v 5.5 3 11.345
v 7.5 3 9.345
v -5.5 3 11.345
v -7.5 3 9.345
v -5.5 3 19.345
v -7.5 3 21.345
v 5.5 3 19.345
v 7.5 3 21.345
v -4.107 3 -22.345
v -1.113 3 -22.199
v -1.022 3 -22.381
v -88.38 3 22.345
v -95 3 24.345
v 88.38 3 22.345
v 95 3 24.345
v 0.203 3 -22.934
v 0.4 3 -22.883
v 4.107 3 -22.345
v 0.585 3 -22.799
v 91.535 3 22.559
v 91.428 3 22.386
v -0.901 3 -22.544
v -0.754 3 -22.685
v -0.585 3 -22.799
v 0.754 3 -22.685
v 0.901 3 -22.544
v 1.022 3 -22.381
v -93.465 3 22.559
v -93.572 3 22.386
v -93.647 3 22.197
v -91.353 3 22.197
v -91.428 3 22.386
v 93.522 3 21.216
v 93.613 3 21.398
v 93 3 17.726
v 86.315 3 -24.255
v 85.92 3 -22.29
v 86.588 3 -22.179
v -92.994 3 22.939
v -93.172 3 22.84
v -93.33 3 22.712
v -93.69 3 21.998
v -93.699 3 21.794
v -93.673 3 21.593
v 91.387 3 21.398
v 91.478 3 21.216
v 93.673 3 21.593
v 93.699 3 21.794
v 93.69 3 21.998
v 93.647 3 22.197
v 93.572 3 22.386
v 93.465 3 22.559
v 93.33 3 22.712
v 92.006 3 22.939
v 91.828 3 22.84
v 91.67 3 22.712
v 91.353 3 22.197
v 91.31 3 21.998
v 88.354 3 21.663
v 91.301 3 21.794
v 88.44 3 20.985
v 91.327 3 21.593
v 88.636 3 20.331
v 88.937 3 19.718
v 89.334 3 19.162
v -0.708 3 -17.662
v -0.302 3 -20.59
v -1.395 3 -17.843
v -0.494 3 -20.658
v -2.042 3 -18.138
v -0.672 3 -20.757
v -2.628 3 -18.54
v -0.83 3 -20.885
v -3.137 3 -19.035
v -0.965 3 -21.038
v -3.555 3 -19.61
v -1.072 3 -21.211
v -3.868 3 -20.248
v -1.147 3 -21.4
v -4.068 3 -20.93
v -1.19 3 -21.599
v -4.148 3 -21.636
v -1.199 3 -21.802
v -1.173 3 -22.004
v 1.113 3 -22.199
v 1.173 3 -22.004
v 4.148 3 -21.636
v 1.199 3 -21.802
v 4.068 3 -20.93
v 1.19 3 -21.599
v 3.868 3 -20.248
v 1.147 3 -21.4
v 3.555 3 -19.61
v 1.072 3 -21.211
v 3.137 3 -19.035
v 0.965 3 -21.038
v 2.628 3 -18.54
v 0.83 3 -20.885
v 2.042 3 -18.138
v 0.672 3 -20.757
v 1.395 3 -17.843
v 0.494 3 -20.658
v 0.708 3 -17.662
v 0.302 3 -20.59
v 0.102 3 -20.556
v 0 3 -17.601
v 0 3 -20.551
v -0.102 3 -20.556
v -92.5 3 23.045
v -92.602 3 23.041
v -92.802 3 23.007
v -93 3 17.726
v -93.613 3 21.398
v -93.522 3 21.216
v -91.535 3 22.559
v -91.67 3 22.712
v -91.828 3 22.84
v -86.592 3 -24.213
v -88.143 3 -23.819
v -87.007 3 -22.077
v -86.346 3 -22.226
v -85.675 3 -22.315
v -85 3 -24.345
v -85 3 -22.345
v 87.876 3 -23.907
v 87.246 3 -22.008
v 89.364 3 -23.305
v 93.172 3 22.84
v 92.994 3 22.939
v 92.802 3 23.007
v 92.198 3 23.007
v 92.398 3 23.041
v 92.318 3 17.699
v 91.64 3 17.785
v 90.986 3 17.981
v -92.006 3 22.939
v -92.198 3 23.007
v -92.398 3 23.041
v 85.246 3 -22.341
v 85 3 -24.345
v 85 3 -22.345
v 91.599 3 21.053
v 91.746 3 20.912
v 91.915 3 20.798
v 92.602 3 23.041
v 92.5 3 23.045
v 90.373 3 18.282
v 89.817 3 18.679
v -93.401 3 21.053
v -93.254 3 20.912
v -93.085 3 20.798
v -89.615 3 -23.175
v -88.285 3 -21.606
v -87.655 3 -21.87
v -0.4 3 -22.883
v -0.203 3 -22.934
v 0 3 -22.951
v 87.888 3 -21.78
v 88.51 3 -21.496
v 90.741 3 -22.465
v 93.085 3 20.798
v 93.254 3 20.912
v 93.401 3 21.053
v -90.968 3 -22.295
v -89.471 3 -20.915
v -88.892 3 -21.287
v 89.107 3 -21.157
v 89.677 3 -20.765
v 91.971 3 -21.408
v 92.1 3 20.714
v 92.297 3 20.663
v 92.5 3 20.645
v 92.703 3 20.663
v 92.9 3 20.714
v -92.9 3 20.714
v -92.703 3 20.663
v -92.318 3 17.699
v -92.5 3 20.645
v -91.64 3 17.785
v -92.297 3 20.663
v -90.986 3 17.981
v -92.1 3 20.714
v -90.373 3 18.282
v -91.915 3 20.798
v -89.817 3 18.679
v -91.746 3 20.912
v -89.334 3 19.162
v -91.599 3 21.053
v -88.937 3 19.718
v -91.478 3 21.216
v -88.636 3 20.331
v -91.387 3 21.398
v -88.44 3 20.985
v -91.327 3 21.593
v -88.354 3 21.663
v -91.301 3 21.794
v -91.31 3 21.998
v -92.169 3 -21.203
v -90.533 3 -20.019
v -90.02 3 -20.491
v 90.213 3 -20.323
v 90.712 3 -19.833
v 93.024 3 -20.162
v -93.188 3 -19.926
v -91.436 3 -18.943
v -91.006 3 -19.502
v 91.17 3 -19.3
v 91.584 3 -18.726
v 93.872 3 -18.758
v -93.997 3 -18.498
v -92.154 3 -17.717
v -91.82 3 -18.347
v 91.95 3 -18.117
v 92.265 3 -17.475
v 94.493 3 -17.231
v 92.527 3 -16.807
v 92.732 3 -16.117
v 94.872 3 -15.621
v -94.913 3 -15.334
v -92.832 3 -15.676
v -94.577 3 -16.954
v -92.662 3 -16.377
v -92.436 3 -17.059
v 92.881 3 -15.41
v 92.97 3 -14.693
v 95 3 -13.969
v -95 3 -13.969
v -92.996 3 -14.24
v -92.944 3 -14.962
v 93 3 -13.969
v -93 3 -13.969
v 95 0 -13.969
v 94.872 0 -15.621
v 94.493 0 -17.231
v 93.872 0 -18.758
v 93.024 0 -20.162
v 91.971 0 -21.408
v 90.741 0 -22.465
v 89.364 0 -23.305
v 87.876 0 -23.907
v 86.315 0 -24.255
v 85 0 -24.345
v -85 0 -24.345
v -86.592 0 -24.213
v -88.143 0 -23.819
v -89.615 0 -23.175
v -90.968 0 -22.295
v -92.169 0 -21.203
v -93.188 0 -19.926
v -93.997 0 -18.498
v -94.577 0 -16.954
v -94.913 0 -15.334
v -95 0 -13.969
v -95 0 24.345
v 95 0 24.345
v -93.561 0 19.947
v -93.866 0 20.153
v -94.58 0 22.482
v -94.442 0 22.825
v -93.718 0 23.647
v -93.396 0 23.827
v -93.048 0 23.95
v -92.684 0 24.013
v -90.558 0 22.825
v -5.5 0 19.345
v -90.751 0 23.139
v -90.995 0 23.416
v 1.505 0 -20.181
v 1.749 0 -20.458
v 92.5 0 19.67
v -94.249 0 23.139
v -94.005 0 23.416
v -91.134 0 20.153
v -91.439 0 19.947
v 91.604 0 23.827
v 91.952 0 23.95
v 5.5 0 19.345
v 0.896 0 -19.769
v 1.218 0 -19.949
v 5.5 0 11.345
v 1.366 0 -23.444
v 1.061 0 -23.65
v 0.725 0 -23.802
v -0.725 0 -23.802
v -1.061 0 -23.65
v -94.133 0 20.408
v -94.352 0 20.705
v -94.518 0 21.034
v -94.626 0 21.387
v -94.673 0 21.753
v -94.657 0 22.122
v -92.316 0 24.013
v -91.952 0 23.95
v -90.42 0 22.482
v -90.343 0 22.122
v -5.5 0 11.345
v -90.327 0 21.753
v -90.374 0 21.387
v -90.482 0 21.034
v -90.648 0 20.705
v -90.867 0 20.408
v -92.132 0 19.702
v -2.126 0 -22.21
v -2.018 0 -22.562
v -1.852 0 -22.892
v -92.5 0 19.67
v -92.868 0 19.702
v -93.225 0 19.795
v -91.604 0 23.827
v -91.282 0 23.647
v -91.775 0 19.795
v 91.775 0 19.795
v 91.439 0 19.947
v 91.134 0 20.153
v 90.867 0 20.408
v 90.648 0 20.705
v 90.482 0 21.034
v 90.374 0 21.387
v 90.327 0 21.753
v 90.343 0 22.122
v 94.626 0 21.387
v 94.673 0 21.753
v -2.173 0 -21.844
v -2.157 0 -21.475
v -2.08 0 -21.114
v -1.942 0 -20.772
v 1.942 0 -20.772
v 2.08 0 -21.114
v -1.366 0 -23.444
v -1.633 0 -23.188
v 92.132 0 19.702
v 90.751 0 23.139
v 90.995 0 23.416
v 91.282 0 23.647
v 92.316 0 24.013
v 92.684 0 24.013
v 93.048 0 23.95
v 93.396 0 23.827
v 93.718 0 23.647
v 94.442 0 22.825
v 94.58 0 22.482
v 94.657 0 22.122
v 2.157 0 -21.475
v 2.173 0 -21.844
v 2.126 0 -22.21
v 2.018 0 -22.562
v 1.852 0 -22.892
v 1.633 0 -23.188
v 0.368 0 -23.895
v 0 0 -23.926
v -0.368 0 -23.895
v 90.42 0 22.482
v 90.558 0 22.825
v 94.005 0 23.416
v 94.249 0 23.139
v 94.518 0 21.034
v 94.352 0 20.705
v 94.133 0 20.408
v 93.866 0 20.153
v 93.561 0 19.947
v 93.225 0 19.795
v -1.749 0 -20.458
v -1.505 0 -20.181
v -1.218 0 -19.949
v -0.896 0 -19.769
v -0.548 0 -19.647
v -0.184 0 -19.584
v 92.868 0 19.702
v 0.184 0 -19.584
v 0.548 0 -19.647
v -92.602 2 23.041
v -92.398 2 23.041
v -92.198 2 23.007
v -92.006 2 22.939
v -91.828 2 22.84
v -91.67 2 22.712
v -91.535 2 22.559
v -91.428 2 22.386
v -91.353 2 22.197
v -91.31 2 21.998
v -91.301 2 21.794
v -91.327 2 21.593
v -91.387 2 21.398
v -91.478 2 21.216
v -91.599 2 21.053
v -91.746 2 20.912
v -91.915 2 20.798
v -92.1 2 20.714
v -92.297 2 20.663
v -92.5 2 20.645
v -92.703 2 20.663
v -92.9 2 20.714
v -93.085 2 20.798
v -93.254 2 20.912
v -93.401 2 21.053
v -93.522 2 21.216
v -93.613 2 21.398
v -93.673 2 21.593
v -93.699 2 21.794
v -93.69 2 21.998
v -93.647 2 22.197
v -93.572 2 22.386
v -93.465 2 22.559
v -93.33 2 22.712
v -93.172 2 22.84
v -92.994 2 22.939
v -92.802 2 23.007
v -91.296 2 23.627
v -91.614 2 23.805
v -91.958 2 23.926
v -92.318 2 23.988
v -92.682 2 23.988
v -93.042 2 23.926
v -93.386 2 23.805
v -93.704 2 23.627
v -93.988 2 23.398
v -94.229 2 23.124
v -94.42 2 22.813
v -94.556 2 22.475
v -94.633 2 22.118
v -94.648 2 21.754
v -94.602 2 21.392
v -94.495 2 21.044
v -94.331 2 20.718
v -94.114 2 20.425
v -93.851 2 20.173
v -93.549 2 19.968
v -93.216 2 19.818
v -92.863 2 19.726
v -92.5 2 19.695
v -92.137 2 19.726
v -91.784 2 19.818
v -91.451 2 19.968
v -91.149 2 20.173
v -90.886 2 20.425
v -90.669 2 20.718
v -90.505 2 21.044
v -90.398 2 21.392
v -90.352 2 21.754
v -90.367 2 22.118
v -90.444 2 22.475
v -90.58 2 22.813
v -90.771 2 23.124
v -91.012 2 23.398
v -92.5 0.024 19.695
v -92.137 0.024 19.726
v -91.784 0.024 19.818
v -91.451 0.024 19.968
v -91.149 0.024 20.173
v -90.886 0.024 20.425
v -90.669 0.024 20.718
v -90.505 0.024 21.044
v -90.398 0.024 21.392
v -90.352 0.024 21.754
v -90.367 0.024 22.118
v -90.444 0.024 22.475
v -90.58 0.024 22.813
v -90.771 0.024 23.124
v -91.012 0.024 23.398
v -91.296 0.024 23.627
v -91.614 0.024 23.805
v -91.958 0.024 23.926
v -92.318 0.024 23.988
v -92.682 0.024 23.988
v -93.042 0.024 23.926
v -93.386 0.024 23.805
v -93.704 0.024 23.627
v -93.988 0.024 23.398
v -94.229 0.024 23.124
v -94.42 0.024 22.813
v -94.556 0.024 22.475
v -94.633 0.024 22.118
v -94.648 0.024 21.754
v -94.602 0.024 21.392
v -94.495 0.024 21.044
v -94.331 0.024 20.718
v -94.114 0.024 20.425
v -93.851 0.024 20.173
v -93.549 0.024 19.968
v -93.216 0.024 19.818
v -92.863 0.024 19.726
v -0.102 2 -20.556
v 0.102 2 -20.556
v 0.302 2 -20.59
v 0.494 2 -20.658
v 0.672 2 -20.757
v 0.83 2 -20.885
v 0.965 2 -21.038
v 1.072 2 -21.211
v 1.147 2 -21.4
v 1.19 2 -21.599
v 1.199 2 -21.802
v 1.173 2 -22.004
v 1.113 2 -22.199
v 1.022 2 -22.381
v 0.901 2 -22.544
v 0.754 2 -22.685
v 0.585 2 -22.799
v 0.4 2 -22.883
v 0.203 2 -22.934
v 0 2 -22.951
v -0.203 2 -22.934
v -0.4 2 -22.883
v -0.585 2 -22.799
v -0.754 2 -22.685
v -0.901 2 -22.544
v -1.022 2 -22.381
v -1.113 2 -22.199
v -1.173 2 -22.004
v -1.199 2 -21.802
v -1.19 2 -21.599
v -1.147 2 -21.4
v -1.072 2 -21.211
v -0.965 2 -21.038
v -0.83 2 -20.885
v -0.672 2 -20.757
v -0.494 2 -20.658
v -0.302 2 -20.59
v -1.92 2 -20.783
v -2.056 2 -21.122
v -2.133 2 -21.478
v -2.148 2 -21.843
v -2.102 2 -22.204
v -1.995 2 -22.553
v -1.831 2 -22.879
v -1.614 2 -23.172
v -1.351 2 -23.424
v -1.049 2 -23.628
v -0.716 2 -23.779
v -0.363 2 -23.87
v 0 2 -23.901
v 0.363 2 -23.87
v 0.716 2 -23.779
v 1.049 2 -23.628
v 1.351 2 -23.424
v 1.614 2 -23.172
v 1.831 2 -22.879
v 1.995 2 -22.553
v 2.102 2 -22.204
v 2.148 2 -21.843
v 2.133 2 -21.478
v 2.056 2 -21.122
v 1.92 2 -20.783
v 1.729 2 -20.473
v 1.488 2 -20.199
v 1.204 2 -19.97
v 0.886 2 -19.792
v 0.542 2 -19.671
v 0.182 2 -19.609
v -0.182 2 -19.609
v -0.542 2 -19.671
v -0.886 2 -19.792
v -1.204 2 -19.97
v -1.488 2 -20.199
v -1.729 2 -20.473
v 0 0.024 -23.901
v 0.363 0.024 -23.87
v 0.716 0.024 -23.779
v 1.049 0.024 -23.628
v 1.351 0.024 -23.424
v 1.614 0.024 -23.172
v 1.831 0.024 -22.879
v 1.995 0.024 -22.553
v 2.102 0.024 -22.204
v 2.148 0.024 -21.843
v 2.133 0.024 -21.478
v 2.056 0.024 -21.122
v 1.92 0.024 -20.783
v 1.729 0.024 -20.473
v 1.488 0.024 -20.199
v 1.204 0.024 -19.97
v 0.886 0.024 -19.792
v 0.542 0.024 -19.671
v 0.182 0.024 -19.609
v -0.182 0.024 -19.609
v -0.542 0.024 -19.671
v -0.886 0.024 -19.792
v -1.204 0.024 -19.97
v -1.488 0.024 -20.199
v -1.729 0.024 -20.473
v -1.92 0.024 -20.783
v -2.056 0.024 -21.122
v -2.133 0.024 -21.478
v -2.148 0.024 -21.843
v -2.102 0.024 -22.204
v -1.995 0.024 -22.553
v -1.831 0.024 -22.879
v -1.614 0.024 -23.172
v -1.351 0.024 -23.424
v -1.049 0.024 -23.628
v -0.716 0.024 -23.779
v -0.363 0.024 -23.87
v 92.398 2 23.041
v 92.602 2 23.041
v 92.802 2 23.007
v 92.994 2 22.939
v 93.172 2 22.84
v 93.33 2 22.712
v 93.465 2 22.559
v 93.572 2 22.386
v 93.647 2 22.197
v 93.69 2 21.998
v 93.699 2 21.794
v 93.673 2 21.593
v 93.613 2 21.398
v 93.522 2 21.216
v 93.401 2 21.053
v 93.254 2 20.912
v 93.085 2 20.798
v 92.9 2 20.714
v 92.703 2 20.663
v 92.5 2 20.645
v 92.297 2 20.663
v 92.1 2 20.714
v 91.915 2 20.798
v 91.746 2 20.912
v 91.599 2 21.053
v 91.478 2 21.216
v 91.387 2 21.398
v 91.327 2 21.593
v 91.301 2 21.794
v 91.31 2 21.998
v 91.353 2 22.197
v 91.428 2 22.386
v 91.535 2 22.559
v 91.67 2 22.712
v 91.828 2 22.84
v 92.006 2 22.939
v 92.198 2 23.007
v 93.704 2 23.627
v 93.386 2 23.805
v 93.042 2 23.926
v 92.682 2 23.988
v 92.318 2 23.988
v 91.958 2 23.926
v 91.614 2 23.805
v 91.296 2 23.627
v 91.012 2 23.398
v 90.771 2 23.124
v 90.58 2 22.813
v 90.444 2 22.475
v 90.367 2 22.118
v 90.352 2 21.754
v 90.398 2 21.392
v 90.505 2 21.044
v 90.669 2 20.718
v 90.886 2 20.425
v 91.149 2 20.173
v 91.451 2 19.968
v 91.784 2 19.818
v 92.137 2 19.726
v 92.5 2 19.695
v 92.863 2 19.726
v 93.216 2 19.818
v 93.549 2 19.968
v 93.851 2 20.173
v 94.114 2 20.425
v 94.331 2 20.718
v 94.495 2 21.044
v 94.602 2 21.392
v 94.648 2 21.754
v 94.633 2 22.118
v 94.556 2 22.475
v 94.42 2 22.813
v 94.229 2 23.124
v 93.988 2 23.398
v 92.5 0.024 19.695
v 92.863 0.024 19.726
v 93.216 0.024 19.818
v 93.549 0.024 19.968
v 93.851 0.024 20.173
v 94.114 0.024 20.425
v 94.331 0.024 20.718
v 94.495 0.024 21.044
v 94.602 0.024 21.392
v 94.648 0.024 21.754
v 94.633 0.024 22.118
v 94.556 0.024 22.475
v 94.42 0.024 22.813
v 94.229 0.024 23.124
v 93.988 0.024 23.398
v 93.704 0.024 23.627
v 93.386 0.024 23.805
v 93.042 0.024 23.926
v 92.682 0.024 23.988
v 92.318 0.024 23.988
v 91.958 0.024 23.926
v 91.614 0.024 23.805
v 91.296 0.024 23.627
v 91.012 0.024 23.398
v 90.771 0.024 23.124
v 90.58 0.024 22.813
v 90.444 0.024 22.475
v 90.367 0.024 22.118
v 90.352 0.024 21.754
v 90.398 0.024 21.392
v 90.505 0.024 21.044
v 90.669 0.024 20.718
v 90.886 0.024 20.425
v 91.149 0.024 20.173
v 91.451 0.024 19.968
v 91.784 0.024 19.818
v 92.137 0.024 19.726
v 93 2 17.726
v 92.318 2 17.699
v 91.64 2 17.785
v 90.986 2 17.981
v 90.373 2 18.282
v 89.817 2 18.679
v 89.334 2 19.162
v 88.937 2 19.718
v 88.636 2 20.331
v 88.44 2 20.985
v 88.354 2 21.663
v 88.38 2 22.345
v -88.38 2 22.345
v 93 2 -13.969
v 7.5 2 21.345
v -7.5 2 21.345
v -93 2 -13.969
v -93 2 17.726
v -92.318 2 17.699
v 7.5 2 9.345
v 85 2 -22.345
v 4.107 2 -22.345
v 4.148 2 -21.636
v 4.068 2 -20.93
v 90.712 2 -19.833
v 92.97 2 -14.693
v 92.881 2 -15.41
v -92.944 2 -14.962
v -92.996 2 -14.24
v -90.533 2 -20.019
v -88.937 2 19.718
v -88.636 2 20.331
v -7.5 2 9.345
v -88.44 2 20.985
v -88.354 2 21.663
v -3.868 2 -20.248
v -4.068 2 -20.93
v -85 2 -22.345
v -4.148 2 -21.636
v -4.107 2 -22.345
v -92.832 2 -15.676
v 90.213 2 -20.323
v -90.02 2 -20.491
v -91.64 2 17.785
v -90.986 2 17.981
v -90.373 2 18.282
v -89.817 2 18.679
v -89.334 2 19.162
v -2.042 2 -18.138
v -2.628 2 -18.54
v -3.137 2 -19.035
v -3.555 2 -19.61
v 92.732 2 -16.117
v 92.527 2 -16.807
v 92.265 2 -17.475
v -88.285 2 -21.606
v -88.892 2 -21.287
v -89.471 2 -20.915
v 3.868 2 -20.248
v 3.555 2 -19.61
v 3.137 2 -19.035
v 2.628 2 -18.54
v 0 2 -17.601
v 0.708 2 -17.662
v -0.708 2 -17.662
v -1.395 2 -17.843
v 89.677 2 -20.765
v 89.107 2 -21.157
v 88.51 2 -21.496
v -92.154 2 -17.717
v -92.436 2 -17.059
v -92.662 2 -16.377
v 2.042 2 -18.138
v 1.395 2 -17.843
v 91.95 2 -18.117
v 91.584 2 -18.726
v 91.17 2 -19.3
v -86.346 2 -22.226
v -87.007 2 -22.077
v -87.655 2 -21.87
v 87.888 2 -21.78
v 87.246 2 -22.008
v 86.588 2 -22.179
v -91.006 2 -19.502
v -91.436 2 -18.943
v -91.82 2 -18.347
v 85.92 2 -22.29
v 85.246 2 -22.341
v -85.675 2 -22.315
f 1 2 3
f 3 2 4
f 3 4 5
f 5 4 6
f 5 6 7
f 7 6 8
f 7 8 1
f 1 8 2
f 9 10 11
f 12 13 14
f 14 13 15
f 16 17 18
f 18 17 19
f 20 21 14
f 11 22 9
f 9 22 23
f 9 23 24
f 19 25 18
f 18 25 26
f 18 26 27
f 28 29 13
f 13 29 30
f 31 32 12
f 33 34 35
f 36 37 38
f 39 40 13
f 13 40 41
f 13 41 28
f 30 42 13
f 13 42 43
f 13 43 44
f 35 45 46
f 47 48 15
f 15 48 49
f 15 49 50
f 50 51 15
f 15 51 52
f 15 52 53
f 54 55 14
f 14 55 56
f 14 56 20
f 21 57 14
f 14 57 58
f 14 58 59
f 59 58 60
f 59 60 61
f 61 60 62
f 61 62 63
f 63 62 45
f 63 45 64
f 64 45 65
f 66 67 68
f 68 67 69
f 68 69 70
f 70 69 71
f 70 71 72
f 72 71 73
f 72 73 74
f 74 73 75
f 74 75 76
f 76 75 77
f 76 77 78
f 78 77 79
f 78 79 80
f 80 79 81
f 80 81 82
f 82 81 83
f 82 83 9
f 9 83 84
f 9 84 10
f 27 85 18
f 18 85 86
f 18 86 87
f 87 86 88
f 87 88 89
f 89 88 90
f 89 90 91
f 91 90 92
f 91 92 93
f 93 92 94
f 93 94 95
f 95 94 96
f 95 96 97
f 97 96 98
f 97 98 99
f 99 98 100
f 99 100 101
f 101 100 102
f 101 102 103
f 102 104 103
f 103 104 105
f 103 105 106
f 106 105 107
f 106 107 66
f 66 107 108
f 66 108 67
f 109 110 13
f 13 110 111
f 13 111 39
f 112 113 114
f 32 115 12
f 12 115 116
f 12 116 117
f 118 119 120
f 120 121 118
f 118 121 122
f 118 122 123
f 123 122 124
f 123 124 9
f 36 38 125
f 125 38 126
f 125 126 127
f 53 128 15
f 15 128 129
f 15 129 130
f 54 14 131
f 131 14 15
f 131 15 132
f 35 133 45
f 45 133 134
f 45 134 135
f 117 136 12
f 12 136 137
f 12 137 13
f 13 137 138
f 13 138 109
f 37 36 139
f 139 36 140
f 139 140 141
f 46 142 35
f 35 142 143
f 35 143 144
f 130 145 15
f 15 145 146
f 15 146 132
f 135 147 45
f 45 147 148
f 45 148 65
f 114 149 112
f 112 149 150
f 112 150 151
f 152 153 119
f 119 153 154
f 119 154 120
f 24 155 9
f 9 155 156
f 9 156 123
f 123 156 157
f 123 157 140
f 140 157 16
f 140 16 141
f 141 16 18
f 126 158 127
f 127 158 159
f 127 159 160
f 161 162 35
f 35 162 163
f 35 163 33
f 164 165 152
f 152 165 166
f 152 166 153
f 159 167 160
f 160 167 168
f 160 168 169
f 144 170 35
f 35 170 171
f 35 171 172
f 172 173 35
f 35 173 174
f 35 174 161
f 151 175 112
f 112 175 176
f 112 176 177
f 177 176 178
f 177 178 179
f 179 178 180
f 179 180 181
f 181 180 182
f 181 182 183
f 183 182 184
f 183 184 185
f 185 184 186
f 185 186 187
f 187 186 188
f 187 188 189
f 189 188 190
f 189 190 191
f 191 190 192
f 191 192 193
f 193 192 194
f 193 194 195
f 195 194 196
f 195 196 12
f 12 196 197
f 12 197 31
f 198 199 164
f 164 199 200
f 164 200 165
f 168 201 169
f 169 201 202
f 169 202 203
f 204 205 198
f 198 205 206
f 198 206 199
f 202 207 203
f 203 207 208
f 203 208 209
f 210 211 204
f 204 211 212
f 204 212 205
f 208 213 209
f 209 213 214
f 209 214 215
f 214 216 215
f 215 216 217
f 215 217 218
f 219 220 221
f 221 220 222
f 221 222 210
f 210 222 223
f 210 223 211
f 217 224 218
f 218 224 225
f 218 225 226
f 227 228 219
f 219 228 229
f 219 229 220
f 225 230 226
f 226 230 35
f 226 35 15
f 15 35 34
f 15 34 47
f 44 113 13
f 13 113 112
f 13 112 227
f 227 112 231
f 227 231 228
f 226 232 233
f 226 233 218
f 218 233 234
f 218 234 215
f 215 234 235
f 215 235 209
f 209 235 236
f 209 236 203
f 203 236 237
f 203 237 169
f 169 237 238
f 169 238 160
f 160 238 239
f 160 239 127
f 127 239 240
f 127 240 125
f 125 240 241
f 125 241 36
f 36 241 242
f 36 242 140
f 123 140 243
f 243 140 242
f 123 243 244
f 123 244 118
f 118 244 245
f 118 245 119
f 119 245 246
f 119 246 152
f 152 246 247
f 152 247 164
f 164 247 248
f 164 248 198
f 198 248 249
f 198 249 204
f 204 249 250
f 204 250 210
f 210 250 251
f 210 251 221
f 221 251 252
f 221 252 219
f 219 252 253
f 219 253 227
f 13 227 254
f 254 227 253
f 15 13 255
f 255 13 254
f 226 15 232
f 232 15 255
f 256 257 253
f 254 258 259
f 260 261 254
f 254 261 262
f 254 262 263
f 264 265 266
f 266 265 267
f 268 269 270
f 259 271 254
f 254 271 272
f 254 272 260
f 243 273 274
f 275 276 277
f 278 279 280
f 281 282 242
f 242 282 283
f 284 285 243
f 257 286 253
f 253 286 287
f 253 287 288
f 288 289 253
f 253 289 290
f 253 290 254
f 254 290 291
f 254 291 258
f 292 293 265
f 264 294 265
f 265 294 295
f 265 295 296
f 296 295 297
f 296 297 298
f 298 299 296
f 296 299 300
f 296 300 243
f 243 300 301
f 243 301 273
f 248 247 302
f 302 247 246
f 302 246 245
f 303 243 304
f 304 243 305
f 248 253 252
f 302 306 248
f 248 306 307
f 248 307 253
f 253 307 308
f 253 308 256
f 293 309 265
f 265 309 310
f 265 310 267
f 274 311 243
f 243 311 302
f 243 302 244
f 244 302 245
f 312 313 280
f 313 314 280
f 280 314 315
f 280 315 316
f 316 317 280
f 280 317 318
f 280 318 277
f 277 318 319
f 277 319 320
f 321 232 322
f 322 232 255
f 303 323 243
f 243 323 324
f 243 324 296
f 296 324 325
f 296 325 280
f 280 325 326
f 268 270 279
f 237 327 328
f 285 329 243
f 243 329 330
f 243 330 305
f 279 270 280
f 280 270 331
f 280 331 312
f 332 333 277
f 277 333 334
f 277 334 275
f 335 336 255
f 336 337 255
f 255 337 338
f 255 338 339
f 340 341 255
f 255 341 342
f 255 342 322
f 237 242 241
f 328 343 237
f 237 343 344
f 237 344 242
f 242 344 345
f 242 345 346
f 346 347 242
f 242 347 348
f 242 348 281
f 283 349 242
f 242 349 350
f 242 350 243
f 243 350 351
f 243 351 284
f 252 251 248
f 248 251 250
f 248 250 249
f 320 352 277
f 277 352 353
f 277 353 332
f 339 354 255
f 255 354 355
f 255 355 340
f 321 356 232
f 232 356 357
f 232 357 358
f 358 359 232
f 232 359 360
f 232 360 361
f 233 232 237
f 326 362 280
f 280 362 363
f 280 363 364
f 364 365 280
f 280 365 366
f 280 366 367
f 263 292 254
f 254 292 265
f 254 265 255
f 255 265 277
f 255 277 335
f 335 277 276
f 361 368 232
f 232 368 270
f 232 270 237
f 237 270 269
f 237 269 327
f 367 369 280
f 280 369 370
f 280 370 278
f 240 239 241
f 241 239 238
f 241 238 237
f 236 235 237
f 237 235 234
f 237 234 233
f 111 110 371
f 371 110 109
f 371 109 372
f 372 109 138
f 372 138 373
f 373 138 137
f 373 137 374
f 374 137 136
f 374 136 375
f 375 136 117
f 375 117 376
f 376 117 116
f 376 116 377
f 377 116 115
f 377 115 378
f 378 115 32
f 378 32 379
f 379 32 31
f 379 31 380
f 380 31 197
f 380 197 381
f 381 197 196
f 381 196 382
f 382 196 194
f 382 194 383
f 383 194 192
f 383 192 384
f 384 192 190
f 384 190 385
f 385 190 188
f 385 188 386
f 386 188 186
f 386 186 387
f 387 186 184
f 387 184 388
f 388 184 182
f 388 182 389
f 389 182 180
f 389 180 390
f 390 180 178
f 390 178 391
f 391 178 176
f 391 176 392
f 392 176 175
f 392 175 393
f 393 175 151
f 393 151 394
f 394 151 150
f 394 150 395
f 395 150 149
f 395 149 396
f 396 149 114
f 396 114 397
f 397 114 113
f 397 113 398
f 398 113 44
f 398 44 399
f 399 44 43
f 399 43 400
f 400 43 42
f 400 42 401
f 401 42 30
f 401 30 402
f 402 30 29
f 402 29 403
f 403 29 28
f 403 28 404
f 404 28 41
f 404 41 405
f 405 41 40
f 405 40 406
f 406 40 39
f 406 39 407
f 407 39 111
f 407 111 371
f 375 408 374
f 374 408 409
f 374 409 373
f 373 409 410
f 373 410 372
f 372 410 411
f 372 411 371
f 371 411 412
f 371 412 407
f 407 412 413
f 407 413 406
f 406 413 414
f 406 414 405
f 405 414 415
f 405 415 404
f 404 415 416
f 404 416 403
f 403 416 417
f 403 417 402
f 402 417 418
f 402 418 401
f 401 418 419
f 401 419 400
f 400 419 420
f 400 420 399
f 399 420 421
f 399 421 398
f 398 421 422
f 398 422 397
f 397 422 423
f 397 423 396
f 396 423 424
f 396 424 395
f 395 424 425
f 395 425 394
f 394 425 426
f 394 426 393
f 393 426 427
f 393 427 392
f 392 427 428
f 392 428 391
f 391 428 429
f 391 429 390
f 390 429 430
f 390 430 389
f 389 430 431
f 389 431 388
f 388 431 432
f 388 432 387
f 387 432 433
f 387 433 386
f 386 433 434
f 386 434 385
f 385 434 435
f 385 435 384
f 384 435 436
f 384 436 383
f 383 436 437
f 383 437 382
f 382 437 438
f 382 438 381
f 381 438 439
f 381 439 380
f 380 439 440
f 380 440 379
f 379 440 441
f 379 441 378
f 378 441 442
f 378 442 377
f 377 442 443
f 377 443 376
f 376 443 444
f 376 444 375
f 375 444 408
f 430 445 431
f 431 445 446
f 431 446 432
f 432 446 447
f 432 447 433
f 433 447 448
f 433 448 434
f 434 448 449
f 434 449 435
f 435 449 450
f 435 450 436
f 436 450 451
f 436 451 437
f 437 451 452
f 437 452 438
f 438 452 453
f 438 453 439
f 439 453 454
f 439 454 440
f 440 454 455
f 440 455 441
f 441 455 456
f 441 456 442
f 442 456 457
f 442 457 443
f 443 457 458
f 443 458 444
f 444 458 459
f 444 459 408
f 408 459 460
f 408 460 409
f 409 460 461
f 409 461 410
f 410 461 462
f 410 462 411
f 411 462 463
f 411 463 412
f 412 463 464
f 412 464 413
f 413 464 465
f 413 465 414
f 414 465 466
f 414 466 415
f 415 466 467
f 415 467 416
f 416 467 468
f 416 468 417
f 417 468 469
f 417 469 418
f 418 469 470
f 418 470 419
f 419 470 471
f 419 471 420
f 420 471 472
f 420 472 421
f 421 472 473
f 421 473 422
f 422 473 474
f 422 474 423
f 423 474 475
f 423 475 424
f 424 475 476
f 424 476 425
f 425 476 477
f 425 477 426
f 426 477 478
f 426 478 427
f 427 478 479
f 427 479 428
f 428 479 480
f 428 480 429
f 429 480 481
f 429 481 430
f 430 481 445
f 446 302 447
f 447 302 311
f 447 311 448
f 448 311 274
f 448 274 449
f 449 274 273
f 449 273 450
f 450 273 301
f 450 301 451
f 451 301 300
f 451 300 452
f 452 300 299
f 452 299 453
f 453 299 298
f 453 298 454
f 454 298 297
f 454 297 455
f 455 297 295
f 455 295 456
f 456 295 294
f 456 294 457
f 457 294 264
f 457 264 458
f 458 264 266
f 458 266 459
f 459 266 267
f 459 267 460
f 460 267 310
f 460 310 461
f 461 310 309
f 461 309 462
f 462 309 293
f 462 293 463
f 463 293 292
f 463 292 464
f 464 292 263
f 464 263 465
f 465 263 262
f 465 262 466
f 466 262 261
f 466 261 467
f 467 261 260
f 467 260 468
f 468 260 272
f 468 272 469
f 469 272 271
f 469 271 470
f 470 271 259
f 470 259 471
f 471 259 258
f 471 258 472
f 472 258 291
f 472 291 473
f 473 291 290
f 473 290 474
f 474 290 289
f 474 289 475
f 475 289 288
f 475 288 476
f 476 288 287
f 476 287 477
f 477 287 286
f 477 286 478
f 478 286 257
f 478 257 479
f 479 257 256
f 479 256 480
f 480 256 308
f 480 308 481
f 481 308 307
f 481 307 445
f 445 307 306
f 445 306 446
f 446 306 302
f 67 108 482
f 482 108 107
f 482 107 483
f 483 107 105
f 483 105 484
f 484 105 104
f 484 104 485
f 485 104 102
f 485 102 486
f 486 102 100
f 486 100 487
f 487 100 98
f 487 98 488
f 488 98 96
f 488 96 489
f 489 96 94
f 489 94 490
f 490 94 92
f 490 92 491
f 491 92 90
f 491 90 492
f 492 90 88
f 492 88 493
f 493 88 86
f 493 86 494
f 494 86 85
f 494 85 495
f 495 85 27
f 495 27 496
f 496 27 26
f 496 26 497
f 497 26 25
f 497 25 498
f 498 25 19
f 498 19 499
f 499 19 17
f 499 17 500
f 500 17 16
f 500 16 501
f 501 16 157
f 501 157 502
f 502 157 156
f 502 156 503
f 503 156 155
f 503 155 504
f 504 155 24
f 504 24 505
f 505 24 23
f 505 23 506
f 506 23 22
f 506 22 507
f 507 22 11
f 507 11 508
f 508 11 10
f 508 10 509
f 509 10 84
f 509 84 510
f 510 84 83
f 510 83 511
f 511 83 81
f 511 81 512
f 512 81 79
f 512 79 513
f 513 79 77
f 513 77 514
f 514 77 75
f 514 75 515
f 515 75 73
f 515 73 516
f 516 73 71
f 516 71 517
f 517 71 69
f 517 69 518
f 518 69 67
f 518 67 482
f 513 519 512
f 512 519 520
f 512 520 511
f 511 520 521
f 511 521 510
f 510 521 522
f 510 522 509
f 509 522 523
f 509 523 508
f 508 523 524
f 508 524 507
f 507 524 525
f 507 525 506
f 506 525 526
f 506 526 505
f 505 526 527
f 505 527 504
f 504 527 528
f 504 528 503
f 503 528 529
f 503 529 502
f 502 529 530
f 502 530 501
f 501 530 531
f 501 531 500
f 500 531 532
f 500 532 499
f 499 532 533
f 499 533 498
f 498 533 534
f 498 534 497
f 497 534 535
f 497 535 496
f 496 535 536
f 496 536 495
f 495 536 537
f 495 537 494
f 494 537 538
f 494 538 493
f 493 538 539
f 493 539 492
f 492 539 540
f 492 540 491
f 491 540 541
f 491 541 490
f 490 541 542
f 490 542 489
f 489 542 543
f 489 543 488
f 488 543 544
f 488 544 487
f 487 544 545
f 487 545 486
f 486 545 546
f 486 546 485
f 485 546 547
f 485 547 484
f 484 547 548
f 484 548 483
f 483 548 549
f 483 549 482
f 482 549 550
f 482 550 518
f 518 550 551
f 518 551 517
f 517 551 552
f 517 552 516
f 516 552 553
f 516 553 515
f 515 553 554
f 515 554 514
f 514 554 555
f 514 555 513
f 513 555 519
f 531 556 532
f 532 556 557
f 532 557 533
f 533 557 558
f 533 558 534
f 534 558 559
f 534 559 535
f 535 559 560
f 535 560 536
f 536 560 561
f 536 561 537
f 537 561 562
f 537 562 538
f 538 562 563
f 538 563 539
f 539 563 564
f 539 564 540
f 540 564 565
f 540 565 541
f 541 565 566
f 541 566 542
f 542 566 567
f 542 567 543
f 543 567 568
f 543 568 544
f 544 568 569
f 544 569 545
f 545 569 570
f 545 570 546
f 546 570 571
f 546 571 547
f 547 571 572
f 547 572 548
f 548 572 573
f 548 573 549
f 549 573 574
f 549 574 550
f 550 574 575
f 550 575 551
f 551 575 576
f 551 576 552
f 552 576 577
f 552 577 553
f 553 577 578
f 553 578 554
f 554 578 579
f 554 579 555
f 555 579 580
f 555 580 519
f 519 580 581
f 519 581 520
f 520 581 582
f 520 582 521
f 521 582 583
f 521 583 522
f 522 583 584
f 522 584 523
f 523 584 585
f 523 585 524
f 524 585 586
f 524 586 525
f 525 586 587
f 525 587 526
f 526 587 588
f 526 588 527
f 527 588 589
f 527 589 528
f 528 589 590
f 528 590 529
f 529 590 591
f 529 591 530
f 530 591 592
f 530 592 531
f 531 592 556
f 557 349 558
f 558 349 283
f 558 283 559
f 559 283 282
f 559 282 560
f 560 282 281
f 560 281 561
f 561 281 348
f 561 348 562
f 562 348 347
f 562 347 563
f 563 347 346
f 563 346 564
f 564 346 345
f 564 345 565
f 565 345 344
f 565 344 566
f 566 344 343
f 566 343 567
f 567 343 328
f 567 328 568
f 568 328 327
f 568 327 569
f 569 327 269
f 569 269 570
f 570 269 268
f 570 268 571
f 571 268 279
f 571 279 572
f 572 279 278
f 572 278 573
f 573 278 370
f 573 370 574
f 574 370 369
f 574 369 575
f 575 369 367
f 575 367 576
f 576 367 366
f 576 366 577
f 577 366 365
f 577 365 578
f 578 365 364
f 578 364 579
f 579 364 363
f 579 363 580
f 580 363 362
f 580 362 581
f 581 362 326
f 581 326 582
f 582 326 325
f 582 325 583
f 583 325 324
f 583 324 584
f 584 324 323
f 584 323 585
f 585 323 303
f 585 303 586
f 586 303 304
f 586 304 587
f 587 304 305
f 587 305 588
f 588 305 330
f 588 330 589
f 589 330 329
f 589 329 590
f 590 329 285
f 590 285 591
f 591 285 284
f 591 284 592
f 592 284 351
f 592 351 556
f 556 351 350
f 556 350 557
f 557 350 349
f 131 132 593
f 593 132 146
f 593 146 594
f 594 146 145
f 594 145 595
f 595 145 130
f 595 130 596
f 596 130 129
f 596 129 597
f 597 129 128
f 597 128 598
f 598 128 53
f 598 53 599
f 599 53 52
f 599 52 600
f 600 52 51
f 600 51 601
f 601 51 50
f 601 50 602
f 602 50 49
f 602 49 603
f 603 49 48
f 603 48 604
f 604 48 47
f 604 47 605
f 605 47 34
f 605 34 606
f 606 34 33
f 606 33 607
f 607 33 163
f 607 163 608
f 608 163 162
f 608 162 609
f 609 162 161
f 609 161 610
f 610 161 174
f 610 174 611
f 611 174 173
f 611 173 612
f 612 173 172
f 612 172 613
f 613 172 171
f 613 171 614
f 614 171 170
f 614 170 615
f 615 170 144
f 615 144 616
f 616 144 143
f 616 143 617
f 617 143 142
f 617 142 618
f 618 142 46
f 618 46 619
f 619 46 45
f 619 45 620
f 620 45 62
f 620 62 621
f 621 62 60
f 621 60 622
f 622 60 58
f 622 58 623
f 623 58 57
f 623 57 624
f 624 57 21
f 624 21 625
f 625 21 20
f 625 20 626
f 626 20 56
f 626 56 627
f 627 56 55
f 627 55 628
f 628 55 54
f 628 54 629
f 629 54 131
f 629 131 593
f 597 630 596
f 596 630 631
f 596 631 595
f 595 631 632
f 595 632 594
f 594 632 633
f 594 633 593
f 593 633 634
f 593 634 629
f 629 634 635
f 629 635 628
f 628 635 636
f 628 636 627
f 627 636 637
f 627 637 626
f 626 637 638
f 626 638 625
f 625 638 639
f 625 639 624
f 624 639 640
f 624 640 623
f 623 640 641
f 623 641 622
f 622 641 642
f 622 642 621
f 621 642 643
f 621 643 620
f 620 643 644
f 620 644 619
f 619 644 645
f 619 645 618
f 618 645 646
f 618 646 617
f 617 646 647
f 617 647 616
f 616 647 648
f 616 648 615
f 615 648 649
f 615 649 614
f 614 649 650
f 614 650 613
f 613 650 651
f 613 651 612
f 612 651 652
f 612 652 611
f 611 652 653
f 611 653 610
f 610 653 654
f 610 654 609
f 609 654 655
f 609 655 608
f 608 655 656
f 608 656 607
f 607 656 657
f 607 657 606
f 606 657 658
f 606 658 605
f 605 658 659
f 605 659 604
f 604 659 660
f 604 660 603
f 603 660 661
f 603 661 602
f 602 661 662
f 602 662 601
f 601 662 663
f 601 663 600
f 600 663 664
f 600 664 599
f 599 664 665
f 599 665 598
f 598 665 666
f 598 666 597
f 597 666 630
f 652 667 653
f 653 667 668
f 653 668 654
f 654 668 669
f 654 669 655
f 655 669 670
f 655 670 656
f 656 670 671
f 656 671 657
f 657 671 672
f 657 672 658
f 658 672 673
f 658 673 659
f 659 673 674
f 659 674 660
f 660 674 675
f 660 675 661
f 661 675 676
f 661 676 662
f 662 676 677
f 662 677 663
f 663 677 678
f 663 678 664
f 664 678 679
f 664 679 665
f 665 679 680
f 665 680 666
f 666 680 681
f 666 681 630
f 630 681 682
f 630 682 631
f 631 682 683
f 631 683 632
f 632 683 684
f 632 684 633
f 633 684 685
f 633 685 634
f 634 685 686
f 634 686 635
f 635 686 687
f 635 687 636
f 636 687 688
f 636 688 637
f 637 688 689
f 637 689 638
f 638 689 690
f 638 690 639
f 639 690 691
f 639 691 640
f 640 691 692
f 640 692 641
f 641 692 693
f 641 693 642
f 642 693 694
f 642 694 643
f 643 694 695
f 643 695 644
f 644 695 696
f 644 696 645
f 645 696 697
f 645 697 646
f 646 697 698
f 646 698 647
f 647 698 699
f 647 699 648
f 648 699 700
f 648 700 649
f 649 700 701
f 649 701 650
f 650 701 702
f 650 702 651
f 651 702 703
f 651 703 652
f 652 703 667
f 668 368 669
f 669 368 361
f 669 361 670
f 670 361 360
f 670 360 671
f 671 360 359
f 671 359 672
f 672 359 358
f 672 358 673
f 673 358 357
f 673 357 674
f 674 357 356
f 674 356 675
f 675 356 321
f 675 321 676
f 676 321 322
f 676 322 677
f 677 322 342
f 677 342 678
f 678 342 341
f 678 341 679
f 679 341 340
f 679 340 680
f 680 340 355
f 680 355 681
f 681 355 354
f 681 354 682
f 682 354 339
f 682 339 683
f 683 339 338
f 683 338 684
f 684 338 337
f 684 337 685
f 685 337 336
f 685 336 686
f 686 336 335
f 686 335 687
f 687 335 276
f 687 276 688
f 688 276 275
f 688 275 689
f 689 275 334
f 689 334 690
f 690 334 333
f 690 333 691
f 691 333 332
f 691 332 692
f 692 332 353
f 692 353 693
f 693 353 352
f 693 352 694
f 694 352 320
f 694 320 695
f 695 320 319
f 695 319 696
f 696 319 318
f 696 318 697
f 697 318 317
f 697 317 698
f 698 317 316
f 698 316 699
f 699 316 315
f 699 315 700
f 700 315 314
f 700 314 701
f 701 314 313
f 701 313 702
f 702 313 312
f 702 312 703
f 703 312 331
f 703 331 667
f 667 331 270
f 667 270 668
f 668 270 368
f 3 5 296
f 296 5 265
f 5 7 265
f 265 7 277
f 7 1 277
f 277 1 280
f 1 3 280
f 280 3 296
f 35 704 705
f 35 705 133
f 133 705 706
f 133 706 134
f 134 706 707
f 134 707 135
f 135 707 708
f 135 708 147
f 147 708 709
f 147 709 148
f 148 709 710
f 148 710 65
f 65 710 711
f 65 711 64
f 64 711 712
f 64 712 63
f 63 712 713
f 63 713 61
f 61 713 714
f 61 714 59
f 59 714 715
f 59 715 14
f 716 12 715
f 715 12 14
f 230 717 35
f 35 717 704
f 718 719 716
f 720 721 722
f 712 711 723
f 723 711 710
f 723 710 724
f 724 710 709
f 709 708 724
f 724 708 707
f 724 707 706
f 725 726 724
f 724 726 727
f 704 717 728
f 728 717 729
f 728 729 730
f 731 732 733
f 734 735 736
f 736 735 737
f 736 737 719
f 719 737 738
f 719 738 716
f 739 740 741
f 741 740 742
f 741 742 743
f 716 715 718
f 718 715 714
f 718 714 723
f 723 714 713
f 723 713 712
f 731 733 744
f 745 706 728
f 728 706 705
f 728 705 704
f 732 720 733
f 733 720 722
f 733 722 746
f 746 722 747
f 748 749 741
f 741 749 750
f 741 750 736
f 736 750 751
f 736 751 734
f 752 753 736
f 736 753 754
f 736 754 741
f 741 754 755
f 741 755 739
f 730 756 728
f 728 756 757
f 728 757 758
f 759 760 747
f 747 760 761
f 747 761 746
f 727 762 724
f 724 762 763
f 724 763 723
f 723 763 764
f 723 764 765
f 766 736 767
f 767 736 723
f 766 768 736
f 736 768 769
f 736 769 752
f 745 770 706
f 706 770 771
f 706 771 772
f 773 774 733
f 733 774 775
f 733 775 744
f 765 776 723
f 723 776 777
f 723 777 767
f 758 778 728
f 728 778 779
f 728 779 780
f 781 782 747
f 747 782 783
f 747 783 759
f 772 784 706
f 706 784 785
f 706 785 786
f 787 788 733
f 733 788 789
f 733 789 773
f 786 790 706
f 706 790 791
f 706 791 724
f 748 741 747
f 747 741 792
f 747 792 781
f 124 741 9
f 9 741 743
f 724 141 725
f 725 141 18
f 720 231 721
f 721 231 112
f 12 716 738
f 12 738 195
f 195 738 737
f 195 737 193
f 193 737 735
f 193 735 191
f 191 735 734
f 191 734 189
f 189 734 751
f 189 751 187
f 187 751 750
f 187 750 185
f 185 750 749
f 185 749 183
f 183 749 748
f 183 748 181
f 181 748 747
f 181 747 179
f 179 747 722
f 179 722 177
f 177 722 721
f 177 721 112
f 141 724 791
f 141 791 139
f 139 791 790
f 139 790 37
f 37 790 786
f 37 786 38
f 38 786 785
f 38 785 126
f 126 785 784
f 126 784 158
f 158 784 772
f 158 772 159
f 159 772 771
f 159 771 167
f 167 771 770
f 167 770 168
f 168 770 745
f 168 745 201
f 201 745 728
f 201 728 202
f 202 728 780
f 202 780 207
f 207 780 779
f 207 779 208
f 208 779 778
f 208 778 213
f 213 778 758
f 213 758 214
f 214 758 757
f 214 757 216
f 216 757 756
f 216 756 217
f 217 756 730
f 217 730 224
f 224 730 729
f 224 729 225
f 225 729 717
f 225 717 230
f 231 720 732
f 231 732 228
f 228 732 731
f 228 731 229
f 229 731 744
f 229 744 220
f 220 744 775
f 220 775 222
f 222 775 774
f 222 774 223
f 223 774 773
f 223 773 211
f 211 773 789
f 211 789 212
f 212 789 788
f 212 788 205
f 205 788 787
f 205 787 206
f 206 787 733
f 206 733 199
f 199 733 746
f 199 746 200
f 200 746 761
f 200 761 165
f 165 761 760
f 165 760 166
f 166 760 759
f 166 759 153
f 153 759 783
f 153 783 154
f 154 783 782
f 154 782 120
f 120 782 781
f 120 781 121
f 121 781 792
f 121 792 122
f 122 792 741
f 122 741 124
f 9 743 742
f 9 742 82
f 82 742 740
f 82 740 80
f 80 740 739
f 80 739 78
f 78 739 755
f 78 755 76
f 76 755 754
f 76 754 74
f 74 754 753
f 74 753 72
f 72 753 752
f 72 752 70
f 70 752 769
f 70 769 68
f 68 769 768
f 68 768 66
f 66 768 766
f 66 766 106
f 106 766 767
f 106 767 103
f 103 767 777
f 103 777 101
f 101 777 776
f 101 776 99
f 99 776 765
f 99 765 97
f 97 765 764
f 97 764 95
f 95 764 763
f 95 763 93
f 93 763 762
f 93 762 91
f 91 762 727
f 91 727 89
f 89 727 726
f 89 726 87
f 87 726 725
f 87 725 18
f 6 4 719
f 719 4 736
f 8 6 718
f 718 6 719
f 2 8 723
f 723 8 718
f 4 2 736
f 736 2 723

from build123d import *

# Parameters (mm, degrees)
EXTRUDE_2_DEPTH          = 3
HOLE_WIZARD_6_AT_2_COUNT = 2
HOLE_WIZARD_6_AT_2_PITCH = 102.259107828
HOLE_WIZARD_6_AT_3_COUNT = 2
HOLE_WIZARD_6_AT_3_PITCH = 185
SKETCH_15_W              = 11
SKETCH_15_H              = 8
CUT_EXTRUDE_1_DEPTH      = 99.115732766
SHELL_START              = 2
SHELL_3_OUTLINE_W        = 15
SHELL_3_OUTLINE_H        = 12
SHELL_3_DEPTH            = 1


# Read off the part's stored shape, not the designer's step: 抽壳3
with BuildPart() as part:
    # 草图1 → 凸台-拉伸2 (new body)
    with BuildSketch(Plane(origin=(0, 0, 0), x_dir=(1, 0, 0), z_dir=(0, 1, 0))):
        with BuildLine():
            Line((85, 24.345368999), (-85, 24.345368999))
            add(Edge.make_bspline(
                [(-85, 24.345368999), (-95, 24.345368999), (-95, 13.969349259)],
                knots=[0, 0, 0, 1.570796327, 1.570796327, 1.570796327], degree=2, weights=[1, 0.707106781, 1]))
            Line((-95, 13.969349259), (-95, -24.345368999))
            Line((-95, -24.345368999), (95, -24.345368999))
            Line((95, -24.345368999), (95, 13.969349259))
            add(Edge.make_bspline(
                [(95, 13.969349259), (95, 24.345368999), (85, 24.345368999)],
                knots=[1.570796327, 1.570796327, 1.570796327, 3.141592654, 3.141592654, 3.141592654], degree=2, weights=[1, 0.707106781, 1]))
        make_face()
    extrude(amount=EXTRUDE_2_DEPTH)

    # 草图14 → 大小六角凹头盖螺钉柱孔6 (revolve, cut)
    with BuildSketch(Plane(origin=(92.5, 0, 21.845368999), x_dir=(0, 0, -1), z_dir=(1, 0, 0))):
        Polygon((0, 0), (0, 3), (1.2, 3), (1.2, 2), (2.15, 2), (2.15, 0.024142219), (2.175, 0), align=None)
    hole_wizard_6 = revolve(axis=Axis((92.5, -6.35, 21.845368999), (0, 1, 0)), mode=Mode.SUBTRACT)

    # 大小六角凹头盖螺钉柱孔6 at 2: 大小六角凹头盖螺钉柱孔6 ×2
    with Locations(*[Vector(-0.9045649034602262, 0, -0.42633594198471203) * (i * HOLE_WIZARD_6_AT_2_PITCH) for i in range(1, HOLE_WIZARD_6_AT_2_COUNT)]):
        add(hole_wizard_6, mode=Mode.SUBTRACT)

    # 大小六角凹头盖螺钉柱孔6 at 3: 大小六角凹头盖螺钉柱孔6 ×2
    with Locations(*[(-i * HOLE_WIZARD_6_AT_3_PITCH, 0, 0) for i in range(1, HOLE_WIZARD_6_AT_3_COUNT)]):
        add(hole_wizard_6, mode=Mode.SUBTRACT)

    # 草图15 → 切除-拉伸1 (cut, through all)
    with BuildSketch(Plane.XZ):
        with Locations((0, 15.345368999)):
            Rectangle(SKETCH_15_W, SKETCH_15_H)
    extrude(amount=-CUT_EXTRUDE_1_DEPTH, mode=Mode.SUBTRACT)

    # 抽壳3 outline → 抽壳3 (cut)
    with BuildSketch(Plane(origin=(0, 0, 0), x_dir=(1, 0, 0), z_dir=(0, 1, 0)).offset(SHELL_START)):
        with BuildLine():
            Line((93, -17.725599588), (93.000000196, 13.969349259))
            add(Edge.make_bspline(
                [(93.000000196, 13.969349259), (93.000000196, 14.990185456), (92.871215367, 16.011021653), (92.613645709, 17.01184643), (92.230602513, 17.972648367), (91.728708361, 18.874166906), (91.117678233, 19.698643208), (90.409881727, 20.430484444), (89.619725312, 21.056754945), (88.762932516, 21.567410906), (87.855861705, 21.955201909), (86.915108734, 22.215310689), (85.957556964, 22.345368999), (85, 22.345368999)],
                knots=[1.570796327, 1.570796327, 1.570796327, 1.570796327, 1.570796327, 1.570796327, 1.570796327, 1.570796327, 1.570796327, 1.570796327, 1.570796327, 1.570796327, 1.570796327, 1.570796327, 3.141592654, 3.141592654, 3.141592654, 3.141592654, 3.141592654, 3.141592654, 3.141592654, 3.141592654, 3.141592654, 3.141592654, 3.141592654, 3.141592654, 3.141592654, 3.141592654], degree=13))
            Line((85, 22.345368999), (4.107268939, 22.345368999))
            ThreePointArc((4.107268939, 22.345368999), (0, 17.601364064), (-4.107268939, 22.345368999))
            Line((-4.107268939, 22.345368999), (-85, 22.345368999))
            add(Edge.make_bspline(
                [(-85, 22.345368999), (-85.957556964, 22.345368999), (-86.915108734, 22.215310689), (-87.855861705, 21.955201909), (-88.762932516, 21.567410906), (-89.619725312, 21.056754945), (-90.409881727, 20.430484444), (-91.117678233, 19.698643208), (-91.728708361, 18.874166906), (-92.230602513, 17.972648367), (-92.613645709, 17.01184643), (-92.871215367, 16.011021653), (-93.000000196, 14.990185456), (-93.000000196, 13.969349259)],
                knots=[0, 0, 0, 0, 0, 0, 0, 0, 0, 0, 0, 0, 0, 0, 1.570796327, 1.570796327, 1.570796327, 1.570796327, 1.570796327, 1.570796327, 1.570796327, 1.570796327, 1.570796327, 1.570796327, 1.570796327, 1.570796327, 1.570796327, 1.570796327], degree=13))
            Line((-93.000000196, 13.969349259), (-93, -17.725599588))
            ThreePointArc((-93, -17.725599588), (-89.565506858, -18.910875857), (-88.380230589, -22.345368999))
            Line((-88.380230589, -22.345368999), (88.380230589, -22.345368999))
            ThreePointArc((88.380230589, -22.345368999), (89.565506858, -18.910875857), (93, -17.725599588))
        make_face()
        with Locations((0, -15.345368999)):
            Rectangle(SHELL_3_OUTLINE_W, SHELL_3_OUTLINE_H, mode=Mode.SUBTRACT)
    extrude(amount=SHELL_3_DEPTH, mode=Mode.SUBTRACT)


solid = part.part
